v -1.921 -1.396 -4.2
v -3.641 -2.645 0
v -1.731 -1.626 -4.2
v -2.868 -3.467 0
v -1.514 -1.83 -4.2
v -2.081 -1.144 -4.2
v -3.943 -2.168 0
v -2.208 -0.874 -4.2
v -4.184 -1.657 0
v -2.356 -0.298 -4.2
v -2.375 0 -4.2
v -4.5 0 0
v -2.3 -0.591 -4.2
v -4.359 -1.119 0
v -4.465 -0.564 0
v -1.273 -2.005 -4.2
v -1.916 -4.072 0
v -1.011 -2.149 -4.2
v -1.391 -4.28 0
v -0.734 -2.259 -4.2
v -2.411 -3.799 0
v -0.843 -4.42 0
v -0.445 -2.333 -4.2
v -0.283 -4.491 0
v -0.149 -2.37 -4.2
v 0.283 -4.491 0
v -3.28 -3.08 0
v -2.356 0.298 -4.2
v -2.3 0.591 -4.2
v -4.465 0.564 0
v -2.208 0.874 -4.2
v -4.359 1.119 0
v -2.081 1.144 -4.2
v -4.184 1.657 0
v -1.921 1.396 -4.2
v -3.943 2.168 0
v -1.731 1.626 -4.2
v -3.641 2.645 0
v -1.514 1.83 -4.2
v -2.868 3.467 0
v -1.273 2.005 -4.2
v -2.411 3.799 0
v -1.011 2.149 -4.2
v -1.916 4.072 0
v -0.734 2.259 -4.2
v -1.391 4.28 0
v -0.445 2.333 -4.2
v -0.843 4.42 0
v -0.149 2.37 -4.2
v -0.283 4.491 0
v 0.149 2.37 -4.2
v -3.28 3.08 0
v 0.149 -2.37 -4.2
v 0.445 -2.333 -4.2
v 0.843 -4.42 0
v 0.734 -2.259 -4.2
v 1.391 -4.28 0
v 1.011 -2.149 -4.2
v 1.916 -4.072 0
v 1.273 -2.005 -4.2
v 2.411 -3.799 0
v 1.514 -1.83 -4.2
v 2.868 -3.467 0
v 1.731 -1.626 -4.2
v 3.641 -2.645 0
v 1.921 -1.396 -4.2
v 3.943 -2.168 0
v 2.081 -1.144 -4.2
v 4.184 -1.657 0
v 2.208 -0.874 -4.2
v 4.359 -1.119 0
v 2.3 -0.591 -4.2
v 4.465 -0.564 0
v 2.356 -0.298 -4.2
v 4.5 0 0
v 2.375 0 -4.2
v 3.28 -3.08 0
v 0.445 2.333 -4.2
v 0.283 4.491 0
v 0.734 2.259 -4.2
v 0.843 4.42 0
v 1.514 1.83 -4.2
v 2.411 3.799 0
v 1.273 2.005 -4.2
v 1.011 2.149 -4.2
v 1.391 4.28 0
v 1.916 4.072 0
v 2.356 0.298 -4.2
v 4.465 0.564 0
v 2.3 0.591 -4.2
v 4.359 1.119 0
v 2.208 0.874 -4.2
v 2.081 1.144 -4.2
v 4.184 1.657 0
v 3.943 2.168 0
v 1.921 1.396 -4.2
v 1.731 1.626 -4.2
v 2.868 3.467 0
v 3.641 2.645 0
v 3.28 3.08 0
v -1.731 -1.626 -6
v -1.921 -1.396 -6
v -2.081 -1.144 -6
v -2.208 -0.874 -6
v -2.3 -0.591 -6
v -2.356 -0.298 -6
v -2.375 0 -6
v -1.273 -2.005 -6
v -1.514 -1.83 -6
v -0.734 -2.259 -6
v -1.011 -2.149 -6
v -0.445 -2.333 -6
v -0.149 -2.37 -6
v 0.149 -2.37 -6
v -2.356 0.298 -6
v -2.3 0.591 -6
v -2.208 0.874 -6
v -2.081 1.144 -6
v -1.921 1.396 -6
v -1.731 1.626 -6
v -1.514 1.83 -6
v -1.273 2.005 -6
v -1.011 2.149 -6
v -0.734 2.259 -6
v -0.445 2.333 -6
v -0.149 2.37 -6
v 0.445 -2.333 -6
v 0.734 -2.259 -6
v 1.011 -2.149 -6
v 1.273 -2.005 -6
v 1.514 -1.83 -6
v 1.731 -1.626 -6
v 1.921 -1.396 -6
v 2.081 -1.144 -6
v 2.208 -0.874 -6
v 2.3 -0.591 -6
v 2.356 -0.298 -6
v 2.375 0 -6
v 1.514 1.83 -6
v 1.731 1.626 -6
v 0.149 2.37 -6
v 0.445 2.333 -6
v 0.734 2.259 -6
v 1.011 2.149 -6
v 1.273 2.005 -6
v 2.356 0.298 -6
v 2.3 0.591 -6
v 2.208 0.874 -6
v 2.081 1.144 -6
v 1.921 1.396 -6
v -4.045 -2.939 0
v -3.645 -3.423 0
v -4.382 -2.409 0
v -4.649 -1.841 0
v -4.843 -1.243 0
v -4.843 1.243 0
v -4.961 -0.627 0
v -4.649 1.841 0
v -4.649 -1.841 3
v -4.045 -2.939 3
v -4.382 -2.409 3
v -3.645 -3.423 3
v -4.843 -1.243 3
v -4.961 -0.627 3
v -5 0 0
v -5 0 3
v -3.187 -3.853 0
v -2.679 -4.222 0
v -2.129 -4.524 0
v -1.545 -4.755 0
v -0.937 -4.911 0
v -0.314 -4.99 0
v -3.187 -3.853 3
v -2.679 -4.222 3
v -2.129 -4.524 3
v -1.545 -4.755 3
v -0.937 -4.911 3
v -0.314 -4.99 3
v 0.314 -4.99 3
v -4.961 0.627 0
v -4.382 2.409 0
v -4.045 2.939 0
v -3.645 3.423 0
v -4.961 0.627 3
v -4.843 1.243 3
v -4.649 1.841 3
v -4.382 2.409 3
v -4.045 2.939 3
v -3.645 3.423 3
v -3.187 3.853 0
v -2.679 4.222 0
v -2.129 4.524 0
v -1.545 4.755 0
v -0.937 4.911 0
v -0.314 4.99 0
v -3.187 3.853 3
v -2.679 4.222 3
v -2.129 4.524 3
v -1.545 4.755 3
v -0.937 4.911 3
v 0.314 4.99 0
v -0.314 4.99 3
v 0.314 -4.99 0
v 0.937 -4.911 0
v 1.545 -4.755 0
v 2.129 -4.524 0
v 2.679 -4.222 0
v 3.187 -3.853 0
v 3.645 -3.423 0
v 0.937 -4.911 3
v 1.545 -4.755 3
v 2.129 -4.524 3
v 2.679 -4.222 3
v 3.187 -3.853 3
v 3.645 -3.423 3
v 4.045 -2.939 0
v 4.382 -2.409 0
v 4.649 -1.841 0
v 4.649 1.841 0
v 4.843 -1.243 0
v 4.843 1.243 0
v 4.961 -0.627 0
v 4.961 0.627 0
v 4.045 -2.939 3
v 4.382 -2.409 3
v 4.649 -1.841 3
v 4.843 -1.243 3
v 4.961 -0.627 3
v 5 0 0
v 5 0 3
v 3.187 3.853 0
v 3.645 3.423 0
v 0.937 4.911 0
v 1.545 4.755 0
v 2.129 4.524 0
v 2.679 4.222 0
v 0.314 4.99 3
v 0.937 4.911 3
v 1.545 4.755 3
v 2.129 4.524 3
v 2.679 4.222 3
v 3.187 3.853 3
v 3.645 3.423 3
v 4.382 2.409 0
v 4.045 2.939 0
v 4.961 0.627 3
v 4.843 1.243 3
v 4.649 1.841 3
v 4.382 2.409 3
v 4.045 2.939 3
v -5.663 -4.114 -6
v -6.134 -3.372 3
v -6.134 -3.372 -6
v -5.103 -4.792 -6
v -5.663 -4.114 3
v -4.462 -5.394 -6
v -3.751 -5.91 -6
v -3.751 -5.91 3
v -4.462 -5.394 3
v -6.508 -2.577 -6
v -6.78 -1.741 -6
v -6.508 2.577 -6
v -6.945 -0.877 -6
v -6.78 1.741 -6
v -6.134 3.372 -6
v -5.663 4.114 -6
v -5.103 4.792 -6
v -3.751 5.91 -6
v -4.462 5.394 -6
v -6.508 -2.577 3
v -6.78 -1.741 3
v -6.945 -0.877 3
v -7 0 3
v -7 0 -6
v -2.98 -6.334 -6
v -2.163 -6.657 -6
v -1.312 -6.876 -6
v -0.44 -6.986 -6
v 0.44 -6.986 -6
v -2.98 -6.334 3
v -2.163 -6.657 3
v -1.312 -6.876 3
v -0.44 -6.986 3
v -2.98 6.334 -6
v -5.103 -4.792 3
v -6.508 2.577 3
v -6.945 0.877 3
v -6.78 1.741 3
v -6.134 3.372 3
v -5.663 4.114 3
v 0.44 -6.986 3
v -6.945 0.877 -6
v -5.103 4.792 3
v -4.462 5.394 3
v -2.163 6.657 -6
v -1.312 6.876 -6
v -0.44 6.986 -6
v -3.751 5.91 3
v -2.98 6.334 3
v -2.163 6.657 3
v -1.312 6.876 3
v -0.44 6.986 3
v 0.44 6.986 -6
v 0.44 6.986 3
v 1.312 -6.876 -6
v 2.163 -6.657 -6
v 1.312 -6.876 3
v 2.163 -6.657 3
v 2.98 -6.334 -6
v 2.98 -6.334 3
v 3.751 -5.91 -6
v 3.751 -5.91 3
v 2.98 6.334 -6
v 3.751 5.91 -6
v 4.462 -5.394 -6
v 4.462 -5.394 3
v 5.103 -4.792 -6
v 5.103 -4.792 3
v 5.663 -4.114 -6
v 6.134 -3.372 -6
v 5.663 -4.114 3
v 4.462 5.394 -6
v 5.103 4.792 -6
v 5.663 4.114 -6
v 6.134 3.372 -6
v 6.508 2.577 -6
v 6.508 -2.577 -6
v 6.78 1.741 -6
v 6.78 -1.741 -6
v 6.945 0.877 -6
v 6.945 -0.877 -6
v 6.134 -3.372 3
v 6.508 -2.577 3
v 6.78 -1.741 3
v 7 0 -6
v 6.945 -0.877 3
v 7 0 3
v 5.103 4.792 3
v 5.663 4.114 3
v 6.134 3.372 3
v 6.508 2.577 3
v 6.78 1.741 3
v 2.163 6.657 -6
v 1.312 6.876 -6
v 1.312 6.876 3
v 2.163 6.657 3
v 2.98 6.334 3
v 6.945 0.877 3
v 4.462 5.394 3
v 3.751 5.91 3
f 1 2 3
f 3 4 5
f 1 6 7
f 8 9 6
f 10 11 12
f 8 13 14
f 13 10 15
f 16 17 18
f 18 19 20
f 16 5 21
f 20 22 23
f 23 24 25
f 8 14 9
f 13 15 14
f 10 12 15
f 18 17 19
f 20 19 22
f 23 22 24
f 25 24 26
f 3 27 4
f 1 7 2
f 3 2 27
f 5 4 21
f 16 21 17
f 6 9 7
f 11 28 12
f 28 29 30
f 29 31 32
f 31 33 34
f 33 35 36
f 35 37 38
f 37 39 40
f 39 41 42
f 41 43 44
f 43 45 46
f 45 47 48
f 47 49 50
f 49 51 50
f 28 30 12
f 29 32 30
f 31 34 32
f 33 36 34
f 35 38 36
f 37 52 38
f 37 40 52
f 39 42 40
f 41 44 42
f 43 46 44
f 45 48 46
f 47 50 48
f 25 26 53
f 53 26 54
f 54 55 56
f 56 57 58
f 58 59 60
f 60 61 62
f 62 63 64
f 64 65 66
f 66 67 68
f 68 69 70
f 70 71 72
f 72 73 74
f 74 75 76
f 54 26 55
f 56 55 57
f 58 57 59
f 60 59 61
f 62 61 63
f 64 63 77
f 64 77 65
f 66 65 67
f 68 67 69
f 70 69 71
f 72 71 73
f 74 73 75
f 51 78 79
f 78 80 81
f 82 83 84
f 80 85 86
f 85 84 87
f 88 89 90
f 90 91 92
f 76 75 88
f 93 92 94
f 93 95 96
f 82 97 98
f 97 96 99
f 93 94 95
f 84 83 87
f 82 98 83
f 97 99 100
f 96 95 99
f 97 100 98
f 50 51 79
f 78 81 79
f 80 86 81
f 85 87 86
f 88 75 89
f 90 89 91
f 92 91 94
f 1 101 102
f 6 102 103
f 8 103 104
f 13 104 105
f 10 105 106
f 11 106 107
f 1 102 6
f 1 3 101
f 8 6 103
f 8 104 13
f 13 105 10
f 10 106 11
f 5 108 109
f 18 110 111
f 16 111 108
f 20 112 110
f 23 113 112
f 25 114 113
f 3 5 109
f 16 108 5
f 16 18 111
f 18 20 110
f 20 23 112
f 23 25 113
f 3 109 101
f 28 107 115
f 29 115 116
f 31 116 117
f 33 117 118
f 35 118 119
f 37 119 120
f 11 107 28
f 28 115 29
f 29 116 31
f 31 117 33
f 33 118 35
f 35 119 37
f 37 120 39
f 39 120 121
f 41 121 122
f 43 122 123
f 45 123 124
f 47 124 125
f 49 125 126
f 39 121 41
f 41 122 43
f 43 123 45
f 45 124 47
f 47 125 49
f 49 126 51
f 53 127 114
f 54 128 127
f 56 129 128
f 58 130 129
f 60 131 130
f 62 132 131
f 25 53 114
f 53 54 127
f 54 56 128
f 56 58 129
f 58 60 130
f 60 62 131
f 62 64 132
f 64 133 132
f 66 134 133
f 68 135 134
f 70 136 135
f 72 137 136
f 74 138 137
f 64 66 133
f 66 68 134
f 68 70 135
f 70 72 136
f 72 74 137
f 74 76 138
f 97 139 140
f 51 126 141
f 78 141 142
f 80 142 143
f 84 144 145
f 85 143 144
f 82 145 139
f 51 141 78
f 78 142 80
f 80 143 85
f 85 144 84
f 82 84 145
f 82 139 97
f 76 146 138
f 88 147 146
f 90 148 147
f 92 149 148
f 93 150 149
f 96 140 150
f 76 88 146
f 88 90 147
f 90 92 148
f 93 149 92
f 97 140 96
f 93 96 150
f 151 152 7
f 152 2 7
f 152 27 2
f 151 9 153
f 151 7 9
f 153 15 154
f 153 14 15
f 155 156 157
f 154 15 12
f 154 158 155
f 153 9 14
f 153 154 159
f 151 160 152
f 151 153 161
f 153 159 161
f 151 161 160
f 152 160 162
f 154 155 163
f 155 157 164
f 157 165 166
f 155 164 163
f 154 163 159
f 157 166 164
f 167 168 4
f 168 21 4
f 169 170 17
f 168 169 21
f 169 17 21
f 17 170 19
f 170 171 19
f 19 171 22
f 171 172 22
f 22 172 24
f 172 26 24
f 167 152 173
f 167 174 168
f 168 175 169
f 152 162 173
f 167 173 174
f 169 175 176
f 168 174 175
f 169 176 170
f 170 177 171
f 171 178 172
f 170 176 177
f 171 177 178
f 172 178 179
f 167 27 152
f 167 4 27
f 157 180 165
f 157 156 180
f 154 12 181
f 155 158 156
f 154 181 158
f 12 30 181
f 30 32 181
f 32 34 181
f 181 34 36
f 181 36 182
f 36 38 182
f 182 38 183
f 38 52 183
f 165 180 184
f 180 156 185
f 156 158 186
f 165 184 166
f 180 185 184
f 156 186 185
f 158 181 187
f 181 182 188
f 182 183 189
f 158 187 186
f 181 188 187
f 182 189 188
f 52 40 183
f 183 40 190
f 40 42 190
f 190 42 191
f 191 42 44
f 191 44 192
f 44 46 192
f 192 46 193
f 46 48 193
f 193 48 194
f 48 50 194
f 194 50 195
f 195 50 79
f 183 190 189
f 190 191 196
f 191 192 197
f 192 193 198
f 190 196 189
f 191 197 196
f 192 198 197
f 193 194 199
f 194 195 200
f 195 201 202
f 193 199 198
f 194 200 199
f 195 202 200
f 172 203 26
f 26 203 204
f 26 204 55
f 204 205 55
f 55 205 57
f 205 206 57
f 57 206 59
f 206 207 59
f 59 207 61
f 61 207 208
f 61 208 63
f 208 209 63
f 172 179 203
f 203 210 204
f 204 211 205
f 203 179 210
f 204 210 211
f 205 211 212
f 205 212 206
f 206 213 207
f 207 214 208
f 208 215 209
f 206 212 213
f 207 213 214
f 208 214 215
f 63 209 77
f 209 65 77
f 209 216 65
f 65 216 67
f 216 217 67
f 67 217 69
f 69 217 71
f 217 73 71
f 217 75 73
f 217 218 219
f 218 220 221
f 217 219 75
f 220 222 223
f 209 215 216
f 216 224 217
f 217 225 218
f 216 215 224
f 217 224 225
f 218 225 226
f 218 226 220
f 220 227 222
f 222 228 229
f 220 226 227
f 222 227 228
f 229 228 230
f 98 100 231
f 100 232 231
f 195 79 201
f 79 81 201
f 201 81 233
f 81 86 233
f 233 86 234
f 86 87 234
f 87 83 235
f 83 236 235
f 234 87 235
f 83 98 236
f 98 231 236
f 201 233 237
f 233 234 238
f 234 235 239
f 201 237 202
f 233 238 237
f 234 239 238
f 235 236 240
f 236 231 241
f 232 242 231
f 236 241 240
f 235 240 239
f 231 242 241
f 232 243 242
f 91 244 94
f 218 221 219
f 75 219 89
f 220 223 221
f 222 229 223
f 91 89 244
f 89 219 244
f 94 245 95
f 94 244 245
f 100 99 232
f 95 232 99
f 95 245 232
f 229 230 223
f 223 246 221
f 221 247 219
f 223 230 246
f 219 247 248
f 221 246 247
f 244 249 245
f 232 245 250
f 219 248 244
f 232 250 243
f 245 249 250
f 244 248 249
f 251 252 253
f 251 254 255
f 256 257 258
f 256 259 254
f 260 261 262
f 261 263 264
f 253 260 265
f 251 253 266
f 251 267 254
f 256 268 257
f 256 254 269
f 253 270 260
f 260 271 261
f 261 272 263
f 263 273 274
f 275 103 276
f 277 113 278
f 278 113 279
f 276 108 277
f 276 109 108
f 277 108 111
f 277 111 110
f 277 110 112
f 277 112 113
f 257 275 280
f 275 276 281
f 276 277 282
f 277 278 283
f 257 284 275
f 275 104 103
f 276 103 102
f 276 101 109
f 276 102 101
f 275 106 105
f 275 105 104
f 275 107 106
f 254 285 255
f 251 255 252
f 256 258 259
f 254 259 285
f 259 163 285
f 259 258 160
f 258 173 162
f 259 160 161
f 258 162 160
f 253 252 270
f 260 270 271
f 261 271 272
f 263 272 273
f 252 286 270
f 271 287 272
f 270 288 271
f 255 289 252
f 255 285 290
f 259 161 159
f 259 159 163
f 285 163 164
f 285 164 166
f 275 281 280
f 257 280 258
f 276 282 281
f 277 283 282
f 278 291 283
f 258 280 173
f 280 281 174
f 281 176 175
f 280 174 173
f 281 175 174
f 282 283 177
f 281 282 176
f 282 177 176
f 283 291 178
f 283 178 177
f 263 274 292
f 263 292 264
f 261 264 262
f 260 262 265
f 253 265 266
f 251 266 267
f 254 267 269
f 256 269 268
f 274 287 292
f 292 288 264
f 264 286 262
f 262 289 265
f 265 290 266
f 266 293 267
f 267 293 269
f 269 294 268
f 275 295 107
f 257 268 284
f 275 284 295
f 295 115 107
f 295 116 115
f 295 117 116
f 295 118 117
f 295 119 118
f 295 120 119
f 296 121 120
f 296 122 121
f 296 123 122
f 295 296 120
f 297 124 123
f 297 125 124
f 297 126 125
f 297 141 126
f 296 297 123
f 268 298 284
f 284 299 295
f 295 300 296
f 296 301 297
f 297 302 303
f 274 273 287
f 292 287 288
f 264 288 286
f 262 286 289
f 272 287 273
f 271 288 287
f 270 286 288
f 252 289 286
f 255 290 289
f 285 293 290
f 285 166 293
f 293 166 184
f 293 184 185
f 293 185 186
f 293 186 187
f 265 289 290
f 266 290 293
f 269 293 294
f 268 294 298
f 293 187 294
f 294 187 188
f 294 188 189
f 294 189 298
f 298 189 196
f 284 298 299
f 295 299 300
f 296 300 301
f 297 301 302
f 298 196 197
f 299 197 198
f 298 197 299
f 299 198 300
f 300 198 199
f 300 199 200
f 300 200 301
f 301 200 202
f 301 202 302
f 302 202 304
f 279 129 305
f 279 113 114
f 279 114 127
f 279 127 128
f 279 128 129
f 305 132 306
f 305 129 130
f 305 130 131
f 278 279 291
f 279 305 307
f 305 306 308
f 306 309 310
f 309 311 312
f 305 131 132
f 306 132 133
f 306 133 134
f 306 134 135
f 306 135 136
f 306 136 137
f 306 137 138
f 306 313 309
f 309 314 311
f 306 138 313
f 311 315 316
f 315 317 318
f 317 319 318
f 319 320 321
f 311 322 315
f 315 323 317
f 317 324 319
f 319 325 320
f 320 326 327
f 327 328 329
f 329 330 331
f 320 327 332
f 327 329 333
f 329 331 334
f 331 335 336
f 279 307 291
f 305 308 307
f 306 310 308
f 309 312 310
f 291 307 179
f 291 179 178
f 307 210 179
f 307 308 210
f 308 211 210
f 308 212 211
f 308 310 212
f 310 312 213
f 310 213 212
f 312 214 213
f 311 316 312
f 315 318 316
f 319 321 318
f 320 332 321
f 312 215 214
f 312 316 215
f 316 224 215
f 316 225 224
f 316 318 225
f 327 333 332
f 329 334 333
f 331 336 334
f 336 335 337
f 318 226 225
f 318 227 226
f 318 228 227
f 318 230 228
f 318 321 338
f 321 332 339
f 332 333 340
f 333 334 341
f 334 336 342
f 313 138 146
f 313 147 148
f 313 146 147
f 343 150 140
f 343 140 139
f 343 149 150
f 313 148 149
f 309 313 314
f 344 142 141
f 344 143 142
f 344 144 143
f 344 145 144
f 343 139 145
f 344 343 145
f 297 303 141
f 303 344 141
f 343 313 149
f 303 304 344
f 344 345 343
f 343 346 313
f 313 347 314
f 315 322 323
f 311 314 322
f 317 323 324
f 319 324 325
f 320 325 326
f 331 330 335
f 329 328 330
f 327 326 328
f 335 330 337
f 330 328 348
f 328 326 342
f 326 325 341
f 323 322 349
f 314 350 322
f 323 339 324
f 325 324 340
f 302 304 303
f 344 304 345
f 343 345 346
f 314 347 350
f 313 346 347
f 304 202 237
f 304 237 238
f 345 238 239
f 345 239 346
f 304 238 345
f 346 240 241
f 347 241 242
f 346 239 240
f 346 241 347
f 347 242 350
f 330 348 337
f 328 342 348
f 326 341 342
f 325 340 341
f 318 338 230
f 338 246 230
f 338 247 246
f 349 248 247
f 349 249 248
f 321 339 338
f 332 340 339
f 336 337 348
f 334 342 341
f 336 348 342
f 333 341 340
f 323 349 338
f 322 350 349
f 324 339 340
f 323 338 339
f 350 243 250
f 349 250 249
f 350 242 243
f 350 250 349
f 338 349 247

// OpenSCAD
$fn = 50;


difference() {
	union() {
		translate(v = [0, 0, -6.0000000000]) {
			cylinder(h = 9, r = 7.0000000000);
		}
	}
	union() {
		translate(v = [0, 0, 0]) {
			rotate(a = [0, 0, 0]) {
				difference() {
					union() {
						translate(v = [0, 0, -9.0000000000]) {
							cylinder(h = 9, r = 2.2500000000);
						}
						translate(v = [0, 0, -4.2000000000]) {
							cylinder(h = 4.2000000000, r1 = 2.3750000000, r2 = 4.5000000000);
						}
						translate(v = [0, 0, -9.0000000000]) {
							cylinder(h = 9, r = 2.3750000000);
						}
						translate(v = [0, 0, -9.0000000000]) {
							cylinder(h = 9, r = 2.2500000000);
						}
					}
					union();
				}
			}
		}
		#cylinder(h = 3, r = 5.0000000000);
	}
}
